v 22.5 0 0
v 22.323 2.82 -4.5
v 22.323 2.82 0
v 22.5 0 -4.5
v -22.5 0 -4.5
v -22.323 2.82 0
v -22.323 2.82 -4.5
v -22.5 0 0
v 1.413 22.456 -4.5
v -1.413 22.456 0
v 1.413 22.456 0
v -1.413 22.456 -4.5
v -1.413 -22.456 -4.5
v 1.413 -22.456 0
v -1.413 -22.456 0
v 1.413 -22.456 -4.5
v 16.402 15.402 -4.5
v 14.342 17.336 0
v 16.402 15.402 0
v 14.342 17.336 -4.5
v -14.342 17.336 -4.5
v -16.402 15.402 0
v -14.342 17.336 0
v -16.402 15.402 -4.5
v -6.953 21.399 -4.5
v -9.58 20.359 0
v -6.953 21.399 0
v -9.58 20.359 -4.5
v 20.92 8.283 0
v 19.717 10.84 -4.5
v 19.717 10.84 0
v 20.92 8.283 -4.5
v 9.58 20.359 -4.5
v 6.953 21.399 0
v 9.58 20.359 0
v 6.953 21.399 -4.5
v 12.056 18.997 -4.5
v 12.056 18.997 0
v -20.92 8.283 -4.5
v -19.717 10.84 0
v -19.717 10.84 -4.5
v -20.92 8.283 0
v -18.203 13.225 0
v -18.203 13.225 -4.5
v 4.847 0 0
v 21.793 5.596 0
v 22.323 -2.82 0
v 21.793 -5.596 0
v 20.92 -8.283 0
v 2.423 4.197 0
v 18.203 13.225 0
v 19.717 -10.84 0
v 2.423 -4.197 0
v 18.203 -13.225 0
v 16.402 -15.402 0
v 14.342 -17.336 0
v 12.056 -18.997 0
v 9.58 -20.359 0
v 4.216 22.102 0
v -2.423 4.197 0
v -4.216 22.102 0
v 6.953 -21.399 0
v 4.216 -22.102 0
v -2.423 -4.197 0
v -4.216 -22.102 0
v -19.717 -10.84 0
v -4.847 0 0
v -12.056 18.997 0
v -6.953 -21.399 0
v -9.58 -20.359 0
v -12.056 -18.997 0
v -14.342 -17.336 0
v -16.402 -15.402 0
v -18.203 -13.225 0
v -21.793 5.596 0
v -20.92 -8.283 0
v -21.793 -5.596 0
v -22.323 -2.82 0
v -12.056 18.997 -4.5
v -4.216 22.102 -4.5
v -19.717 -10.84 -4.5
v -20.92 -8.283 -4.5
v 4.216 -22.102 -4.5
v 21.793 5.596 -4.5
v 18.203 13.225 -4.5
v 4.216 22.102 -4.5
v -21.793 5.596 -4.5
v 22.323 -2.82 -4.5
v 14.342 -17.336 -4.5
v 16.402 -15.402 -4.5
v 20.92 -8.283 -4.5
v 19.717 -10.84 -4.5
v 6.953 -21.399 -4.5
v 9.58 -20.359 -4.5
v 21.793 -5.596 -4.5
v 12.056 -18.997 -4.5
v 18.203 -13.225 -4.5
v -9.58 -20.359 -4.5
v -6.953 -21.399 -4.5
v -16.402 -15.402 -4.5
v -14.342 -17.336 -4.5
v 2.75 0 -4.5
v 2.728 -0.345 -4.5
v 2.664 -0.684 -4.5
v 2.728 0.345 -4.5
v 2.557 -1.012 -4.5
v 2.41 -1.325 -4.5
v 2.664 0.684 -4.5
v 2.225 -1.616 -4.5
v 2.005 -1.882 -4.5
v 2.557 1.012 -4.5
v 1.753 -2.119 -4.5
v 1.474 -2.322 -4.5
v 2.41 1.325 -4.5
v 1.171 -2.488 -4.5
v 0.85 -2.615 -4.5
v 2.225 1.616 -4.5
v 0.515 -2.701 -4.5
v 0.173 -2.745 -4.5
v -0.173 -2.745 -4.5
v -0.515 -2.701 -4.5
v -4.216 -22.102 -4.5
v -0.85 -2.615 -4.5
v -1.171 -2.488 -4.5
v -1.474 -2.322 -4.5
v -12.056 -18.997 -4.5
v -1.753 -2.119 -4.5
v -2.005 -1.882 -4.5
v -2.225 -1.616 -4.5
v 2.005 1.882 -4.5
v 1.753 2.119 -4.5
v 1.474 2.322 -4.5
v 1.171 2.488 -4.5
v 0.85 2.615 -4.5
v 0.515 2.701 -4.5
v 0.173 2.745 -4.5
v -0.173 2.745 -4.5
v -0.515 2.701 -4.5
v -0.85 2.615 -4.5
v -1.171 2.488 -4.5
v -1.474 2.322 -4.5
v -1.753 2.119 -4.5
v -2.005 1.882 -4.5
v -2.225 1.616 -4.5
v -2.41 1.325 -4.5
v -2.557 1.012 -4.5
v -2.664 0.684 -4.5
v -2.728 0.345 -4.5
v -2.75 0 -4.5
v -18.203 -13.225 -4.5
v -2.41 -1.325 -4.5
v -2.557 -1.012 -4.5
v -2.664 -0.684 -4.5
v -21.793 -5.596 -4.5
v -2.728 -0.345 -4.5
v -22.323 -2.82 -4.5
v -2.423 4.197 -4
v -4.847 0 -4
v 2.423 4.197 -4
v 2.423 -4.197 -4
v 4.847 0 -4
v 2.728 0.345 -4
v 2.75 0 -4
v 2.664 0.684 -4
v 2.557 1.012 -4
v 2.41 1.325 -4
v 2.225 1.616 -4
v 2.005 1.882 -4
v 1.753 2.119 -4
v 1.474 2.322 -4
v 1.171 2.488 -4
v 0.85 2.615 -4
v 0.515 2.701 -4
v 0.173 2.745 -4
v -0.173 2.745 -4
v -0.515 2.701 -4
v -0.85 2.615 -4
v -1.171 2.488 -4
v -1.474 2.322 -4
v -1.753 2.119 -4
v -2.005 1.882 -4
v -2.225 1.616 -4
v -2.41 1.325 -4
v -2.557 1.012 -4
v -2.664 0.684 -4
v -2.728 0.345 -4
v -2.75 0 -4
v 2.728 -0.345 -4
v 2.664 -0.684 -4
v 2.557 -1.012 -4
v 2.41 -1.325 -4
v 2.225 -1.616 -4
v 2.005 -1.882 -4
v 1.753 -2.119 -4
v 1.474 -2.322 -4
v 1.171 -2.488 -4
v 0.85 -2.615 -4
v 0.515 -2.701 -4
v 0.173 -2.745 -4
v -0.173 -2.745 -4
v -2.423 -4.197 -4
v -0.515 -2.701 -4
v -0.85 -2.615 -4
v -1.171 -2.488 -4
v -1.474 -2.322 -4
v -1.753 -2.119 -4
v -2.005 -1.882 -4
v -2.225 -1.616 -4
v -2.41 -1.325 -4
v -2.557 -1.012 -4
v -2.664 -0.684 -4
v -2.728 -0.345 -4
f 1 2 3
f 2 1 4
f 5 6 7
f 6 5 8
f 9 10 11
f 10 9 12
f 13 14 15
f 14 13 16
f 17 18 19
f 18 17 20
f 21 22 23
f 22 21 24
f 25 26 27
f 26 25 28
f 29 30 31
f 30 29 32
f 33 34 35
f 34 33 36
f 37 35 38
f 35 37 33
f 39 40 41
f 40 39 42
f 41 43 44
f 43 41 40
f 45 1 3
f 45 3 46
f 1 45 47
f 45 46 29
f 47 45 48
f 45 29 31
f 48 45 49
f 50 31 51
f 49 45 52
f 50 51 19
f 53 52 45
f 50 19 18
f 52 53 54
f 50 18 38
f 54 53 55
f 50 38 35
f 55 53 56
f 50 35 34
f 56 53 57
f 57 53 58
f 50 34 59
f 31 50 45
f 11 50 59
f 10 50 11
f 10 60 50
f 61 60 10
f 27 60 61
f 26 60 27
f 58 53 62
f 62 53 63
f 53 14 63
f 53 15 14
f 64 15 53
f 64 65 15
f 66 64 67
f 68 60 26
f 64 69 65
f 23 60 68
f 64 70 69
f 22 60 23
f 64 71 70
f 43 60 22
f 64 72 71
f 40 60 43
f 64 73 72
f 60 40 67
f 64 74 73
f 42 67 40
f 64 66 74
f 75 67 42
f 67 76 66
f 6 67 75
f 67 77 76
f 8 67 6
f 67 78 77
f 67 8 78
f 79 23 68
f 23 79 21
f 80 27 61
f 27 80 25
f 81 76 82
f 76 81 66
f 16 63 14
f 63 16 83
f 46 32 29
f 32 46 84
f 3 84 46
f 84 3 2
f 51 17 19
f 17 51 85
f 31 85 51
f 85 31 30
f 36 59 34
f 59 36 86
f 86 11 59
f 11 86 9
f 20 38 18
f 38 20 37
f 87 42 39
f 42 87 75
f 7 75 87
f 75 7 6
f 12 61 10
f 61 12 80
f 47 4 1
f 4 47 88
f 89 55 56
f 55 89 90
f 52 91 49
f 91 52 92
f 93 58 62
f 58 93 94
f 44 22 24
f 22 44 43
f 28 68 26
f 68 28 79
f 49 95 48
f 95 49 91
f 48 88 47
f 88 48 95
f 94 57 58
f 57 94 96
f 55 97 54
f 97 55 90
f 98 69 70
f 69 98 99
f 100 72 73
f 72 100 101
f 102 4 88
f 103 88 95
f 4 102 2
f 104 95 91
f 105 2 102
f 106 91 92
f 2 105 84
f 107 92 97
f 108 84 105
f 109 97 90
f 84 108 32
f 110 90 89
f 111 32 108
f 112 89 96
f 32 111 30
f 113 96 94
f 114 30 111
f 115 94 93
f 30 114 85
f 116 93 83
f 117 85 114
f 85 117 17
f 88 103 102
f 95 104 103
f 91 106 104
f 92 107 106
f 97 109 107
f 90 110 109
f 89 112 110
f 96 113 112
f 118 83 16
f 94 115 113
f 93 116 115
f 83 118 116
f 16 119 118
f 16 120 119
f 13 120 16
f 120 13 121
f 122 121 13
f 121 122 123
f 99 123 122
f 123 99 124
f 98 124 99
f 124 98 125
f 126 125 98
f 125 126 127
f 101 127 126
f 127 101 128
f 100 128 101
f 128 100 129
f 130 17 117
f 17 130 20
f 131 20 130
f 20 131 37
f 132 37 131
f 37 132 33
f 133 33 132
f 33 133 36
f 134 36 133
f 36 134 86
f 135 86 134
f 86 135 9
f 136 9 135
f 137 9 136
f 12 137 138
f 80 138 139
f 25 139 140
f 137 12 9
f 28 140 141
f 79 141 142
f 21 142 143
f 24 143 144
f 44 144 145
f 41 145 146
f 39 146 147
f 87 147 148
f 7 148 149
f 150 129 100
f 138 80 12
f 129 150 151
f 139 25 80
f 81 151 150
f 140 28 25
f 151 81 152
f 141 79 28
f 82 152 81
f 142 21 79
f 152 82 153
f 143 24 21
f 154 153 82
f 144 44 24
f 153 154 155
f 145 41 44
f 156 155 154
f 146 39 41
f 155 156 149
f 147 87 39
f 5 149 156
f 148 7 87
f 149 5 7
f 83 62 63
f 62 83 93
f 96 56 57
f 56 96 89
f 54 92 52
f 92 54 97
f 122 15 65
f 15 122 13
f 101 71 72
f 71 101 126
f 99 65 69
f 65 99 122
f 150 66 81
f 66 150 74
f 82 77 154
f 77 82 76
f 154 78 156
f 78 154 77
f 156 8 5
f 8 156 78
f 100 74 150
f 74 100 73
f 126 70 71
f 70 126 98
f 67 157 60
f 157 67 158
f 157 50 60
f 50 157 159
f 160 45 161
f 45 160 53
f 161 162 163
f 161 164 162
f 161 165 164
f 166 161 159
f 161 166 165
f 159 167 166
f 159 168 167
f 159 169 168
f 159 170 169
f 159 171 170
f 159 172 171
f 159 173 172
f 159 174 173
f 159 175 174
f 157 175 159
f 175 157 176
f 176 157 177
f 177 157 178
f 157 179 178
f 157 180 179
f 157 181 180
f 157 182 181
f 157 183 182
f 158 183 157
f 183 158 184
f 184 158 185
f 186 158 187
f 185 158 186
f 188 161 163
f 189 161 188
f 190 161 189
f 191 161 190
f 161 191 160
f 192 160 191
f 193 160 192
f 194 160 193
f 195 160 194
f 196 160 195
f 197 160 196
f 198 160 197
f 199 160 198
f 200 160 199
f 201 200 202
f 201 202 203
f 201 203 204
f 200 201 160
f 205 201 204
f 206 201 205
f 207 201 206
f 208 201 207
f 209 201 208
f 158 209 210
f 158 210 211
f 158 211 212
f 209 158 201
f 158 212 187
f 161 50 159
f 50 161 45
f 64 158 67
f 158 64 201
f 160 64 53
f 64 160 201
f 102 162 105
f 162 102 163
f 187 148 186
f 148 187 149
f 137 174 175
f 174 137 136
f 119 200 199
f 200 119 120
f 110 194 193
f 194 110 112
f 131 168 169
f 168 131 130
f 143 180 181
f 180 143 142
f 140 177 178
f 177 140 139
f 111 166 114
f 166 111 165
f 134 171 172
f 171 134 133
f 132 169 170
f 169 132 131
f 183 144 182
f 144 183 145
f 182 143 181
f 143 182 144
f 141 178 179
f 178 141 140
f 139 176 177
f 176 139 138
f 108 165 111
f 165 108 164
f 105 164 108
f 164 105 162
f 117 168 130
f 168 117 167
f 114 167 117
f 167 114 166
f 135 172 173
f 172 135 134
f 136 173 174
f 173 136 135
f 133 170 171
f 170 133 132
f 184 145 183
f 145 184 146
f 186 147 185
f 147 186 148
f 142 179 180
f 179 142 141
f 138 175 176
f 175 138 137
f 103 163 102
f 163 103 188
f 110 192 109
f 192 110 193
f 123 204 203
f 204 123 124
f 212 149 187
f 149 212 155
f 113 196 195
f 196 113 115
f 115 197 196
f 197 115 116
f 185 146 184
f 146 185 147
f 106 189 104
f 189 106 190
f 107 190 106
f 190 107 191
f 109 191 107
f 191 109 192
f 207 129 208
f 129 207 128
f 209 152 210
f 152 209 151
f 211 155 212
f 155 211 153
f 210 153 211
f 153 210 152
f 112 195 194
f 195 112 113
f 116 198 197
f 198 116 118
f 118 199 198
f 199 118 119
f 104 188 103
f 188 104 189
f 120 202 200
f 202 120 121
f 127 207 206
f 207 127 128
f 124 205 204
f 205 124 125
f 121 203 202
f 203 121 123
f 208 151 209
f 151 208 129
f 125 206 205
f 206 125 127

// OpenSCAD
$fn = 50;


difference() {
	union() {
		translate(v = [0, 0, -4.5000000000]) {
			cylinder(h = 4.5000000000, r = 22.5000000000);
		}
		translate(v = [0, 0, -3.0000000000]) {
			cylinder(h = 3, r = 2.8750000000);
		}
	}
	union() {
		translate(v = [0, 0, 0]) {
			rotate(a = [0, 0, 0]) {
				difference() {
					union() {
						translate(v = [0, 0, -4]) {
							linear_extrude(height = 4) {
								polygon(points = [[4.8468000000, 0.0000000000], [2.4234000000, 4.1974519271], [-2.4234000000, 4.1974519271], [-4.8468000000, 0.0000000000], [-2.4234000000, -4.1974519271], [2.4234000000, -4.1974519271]]);
							}
						}
					}
					union();
				}
			}
		}
		#translate(v = [0, 0, -100.0000000000]) {
			cylinder(h = 200, r = 2.7500000000);
		}
	}
}
